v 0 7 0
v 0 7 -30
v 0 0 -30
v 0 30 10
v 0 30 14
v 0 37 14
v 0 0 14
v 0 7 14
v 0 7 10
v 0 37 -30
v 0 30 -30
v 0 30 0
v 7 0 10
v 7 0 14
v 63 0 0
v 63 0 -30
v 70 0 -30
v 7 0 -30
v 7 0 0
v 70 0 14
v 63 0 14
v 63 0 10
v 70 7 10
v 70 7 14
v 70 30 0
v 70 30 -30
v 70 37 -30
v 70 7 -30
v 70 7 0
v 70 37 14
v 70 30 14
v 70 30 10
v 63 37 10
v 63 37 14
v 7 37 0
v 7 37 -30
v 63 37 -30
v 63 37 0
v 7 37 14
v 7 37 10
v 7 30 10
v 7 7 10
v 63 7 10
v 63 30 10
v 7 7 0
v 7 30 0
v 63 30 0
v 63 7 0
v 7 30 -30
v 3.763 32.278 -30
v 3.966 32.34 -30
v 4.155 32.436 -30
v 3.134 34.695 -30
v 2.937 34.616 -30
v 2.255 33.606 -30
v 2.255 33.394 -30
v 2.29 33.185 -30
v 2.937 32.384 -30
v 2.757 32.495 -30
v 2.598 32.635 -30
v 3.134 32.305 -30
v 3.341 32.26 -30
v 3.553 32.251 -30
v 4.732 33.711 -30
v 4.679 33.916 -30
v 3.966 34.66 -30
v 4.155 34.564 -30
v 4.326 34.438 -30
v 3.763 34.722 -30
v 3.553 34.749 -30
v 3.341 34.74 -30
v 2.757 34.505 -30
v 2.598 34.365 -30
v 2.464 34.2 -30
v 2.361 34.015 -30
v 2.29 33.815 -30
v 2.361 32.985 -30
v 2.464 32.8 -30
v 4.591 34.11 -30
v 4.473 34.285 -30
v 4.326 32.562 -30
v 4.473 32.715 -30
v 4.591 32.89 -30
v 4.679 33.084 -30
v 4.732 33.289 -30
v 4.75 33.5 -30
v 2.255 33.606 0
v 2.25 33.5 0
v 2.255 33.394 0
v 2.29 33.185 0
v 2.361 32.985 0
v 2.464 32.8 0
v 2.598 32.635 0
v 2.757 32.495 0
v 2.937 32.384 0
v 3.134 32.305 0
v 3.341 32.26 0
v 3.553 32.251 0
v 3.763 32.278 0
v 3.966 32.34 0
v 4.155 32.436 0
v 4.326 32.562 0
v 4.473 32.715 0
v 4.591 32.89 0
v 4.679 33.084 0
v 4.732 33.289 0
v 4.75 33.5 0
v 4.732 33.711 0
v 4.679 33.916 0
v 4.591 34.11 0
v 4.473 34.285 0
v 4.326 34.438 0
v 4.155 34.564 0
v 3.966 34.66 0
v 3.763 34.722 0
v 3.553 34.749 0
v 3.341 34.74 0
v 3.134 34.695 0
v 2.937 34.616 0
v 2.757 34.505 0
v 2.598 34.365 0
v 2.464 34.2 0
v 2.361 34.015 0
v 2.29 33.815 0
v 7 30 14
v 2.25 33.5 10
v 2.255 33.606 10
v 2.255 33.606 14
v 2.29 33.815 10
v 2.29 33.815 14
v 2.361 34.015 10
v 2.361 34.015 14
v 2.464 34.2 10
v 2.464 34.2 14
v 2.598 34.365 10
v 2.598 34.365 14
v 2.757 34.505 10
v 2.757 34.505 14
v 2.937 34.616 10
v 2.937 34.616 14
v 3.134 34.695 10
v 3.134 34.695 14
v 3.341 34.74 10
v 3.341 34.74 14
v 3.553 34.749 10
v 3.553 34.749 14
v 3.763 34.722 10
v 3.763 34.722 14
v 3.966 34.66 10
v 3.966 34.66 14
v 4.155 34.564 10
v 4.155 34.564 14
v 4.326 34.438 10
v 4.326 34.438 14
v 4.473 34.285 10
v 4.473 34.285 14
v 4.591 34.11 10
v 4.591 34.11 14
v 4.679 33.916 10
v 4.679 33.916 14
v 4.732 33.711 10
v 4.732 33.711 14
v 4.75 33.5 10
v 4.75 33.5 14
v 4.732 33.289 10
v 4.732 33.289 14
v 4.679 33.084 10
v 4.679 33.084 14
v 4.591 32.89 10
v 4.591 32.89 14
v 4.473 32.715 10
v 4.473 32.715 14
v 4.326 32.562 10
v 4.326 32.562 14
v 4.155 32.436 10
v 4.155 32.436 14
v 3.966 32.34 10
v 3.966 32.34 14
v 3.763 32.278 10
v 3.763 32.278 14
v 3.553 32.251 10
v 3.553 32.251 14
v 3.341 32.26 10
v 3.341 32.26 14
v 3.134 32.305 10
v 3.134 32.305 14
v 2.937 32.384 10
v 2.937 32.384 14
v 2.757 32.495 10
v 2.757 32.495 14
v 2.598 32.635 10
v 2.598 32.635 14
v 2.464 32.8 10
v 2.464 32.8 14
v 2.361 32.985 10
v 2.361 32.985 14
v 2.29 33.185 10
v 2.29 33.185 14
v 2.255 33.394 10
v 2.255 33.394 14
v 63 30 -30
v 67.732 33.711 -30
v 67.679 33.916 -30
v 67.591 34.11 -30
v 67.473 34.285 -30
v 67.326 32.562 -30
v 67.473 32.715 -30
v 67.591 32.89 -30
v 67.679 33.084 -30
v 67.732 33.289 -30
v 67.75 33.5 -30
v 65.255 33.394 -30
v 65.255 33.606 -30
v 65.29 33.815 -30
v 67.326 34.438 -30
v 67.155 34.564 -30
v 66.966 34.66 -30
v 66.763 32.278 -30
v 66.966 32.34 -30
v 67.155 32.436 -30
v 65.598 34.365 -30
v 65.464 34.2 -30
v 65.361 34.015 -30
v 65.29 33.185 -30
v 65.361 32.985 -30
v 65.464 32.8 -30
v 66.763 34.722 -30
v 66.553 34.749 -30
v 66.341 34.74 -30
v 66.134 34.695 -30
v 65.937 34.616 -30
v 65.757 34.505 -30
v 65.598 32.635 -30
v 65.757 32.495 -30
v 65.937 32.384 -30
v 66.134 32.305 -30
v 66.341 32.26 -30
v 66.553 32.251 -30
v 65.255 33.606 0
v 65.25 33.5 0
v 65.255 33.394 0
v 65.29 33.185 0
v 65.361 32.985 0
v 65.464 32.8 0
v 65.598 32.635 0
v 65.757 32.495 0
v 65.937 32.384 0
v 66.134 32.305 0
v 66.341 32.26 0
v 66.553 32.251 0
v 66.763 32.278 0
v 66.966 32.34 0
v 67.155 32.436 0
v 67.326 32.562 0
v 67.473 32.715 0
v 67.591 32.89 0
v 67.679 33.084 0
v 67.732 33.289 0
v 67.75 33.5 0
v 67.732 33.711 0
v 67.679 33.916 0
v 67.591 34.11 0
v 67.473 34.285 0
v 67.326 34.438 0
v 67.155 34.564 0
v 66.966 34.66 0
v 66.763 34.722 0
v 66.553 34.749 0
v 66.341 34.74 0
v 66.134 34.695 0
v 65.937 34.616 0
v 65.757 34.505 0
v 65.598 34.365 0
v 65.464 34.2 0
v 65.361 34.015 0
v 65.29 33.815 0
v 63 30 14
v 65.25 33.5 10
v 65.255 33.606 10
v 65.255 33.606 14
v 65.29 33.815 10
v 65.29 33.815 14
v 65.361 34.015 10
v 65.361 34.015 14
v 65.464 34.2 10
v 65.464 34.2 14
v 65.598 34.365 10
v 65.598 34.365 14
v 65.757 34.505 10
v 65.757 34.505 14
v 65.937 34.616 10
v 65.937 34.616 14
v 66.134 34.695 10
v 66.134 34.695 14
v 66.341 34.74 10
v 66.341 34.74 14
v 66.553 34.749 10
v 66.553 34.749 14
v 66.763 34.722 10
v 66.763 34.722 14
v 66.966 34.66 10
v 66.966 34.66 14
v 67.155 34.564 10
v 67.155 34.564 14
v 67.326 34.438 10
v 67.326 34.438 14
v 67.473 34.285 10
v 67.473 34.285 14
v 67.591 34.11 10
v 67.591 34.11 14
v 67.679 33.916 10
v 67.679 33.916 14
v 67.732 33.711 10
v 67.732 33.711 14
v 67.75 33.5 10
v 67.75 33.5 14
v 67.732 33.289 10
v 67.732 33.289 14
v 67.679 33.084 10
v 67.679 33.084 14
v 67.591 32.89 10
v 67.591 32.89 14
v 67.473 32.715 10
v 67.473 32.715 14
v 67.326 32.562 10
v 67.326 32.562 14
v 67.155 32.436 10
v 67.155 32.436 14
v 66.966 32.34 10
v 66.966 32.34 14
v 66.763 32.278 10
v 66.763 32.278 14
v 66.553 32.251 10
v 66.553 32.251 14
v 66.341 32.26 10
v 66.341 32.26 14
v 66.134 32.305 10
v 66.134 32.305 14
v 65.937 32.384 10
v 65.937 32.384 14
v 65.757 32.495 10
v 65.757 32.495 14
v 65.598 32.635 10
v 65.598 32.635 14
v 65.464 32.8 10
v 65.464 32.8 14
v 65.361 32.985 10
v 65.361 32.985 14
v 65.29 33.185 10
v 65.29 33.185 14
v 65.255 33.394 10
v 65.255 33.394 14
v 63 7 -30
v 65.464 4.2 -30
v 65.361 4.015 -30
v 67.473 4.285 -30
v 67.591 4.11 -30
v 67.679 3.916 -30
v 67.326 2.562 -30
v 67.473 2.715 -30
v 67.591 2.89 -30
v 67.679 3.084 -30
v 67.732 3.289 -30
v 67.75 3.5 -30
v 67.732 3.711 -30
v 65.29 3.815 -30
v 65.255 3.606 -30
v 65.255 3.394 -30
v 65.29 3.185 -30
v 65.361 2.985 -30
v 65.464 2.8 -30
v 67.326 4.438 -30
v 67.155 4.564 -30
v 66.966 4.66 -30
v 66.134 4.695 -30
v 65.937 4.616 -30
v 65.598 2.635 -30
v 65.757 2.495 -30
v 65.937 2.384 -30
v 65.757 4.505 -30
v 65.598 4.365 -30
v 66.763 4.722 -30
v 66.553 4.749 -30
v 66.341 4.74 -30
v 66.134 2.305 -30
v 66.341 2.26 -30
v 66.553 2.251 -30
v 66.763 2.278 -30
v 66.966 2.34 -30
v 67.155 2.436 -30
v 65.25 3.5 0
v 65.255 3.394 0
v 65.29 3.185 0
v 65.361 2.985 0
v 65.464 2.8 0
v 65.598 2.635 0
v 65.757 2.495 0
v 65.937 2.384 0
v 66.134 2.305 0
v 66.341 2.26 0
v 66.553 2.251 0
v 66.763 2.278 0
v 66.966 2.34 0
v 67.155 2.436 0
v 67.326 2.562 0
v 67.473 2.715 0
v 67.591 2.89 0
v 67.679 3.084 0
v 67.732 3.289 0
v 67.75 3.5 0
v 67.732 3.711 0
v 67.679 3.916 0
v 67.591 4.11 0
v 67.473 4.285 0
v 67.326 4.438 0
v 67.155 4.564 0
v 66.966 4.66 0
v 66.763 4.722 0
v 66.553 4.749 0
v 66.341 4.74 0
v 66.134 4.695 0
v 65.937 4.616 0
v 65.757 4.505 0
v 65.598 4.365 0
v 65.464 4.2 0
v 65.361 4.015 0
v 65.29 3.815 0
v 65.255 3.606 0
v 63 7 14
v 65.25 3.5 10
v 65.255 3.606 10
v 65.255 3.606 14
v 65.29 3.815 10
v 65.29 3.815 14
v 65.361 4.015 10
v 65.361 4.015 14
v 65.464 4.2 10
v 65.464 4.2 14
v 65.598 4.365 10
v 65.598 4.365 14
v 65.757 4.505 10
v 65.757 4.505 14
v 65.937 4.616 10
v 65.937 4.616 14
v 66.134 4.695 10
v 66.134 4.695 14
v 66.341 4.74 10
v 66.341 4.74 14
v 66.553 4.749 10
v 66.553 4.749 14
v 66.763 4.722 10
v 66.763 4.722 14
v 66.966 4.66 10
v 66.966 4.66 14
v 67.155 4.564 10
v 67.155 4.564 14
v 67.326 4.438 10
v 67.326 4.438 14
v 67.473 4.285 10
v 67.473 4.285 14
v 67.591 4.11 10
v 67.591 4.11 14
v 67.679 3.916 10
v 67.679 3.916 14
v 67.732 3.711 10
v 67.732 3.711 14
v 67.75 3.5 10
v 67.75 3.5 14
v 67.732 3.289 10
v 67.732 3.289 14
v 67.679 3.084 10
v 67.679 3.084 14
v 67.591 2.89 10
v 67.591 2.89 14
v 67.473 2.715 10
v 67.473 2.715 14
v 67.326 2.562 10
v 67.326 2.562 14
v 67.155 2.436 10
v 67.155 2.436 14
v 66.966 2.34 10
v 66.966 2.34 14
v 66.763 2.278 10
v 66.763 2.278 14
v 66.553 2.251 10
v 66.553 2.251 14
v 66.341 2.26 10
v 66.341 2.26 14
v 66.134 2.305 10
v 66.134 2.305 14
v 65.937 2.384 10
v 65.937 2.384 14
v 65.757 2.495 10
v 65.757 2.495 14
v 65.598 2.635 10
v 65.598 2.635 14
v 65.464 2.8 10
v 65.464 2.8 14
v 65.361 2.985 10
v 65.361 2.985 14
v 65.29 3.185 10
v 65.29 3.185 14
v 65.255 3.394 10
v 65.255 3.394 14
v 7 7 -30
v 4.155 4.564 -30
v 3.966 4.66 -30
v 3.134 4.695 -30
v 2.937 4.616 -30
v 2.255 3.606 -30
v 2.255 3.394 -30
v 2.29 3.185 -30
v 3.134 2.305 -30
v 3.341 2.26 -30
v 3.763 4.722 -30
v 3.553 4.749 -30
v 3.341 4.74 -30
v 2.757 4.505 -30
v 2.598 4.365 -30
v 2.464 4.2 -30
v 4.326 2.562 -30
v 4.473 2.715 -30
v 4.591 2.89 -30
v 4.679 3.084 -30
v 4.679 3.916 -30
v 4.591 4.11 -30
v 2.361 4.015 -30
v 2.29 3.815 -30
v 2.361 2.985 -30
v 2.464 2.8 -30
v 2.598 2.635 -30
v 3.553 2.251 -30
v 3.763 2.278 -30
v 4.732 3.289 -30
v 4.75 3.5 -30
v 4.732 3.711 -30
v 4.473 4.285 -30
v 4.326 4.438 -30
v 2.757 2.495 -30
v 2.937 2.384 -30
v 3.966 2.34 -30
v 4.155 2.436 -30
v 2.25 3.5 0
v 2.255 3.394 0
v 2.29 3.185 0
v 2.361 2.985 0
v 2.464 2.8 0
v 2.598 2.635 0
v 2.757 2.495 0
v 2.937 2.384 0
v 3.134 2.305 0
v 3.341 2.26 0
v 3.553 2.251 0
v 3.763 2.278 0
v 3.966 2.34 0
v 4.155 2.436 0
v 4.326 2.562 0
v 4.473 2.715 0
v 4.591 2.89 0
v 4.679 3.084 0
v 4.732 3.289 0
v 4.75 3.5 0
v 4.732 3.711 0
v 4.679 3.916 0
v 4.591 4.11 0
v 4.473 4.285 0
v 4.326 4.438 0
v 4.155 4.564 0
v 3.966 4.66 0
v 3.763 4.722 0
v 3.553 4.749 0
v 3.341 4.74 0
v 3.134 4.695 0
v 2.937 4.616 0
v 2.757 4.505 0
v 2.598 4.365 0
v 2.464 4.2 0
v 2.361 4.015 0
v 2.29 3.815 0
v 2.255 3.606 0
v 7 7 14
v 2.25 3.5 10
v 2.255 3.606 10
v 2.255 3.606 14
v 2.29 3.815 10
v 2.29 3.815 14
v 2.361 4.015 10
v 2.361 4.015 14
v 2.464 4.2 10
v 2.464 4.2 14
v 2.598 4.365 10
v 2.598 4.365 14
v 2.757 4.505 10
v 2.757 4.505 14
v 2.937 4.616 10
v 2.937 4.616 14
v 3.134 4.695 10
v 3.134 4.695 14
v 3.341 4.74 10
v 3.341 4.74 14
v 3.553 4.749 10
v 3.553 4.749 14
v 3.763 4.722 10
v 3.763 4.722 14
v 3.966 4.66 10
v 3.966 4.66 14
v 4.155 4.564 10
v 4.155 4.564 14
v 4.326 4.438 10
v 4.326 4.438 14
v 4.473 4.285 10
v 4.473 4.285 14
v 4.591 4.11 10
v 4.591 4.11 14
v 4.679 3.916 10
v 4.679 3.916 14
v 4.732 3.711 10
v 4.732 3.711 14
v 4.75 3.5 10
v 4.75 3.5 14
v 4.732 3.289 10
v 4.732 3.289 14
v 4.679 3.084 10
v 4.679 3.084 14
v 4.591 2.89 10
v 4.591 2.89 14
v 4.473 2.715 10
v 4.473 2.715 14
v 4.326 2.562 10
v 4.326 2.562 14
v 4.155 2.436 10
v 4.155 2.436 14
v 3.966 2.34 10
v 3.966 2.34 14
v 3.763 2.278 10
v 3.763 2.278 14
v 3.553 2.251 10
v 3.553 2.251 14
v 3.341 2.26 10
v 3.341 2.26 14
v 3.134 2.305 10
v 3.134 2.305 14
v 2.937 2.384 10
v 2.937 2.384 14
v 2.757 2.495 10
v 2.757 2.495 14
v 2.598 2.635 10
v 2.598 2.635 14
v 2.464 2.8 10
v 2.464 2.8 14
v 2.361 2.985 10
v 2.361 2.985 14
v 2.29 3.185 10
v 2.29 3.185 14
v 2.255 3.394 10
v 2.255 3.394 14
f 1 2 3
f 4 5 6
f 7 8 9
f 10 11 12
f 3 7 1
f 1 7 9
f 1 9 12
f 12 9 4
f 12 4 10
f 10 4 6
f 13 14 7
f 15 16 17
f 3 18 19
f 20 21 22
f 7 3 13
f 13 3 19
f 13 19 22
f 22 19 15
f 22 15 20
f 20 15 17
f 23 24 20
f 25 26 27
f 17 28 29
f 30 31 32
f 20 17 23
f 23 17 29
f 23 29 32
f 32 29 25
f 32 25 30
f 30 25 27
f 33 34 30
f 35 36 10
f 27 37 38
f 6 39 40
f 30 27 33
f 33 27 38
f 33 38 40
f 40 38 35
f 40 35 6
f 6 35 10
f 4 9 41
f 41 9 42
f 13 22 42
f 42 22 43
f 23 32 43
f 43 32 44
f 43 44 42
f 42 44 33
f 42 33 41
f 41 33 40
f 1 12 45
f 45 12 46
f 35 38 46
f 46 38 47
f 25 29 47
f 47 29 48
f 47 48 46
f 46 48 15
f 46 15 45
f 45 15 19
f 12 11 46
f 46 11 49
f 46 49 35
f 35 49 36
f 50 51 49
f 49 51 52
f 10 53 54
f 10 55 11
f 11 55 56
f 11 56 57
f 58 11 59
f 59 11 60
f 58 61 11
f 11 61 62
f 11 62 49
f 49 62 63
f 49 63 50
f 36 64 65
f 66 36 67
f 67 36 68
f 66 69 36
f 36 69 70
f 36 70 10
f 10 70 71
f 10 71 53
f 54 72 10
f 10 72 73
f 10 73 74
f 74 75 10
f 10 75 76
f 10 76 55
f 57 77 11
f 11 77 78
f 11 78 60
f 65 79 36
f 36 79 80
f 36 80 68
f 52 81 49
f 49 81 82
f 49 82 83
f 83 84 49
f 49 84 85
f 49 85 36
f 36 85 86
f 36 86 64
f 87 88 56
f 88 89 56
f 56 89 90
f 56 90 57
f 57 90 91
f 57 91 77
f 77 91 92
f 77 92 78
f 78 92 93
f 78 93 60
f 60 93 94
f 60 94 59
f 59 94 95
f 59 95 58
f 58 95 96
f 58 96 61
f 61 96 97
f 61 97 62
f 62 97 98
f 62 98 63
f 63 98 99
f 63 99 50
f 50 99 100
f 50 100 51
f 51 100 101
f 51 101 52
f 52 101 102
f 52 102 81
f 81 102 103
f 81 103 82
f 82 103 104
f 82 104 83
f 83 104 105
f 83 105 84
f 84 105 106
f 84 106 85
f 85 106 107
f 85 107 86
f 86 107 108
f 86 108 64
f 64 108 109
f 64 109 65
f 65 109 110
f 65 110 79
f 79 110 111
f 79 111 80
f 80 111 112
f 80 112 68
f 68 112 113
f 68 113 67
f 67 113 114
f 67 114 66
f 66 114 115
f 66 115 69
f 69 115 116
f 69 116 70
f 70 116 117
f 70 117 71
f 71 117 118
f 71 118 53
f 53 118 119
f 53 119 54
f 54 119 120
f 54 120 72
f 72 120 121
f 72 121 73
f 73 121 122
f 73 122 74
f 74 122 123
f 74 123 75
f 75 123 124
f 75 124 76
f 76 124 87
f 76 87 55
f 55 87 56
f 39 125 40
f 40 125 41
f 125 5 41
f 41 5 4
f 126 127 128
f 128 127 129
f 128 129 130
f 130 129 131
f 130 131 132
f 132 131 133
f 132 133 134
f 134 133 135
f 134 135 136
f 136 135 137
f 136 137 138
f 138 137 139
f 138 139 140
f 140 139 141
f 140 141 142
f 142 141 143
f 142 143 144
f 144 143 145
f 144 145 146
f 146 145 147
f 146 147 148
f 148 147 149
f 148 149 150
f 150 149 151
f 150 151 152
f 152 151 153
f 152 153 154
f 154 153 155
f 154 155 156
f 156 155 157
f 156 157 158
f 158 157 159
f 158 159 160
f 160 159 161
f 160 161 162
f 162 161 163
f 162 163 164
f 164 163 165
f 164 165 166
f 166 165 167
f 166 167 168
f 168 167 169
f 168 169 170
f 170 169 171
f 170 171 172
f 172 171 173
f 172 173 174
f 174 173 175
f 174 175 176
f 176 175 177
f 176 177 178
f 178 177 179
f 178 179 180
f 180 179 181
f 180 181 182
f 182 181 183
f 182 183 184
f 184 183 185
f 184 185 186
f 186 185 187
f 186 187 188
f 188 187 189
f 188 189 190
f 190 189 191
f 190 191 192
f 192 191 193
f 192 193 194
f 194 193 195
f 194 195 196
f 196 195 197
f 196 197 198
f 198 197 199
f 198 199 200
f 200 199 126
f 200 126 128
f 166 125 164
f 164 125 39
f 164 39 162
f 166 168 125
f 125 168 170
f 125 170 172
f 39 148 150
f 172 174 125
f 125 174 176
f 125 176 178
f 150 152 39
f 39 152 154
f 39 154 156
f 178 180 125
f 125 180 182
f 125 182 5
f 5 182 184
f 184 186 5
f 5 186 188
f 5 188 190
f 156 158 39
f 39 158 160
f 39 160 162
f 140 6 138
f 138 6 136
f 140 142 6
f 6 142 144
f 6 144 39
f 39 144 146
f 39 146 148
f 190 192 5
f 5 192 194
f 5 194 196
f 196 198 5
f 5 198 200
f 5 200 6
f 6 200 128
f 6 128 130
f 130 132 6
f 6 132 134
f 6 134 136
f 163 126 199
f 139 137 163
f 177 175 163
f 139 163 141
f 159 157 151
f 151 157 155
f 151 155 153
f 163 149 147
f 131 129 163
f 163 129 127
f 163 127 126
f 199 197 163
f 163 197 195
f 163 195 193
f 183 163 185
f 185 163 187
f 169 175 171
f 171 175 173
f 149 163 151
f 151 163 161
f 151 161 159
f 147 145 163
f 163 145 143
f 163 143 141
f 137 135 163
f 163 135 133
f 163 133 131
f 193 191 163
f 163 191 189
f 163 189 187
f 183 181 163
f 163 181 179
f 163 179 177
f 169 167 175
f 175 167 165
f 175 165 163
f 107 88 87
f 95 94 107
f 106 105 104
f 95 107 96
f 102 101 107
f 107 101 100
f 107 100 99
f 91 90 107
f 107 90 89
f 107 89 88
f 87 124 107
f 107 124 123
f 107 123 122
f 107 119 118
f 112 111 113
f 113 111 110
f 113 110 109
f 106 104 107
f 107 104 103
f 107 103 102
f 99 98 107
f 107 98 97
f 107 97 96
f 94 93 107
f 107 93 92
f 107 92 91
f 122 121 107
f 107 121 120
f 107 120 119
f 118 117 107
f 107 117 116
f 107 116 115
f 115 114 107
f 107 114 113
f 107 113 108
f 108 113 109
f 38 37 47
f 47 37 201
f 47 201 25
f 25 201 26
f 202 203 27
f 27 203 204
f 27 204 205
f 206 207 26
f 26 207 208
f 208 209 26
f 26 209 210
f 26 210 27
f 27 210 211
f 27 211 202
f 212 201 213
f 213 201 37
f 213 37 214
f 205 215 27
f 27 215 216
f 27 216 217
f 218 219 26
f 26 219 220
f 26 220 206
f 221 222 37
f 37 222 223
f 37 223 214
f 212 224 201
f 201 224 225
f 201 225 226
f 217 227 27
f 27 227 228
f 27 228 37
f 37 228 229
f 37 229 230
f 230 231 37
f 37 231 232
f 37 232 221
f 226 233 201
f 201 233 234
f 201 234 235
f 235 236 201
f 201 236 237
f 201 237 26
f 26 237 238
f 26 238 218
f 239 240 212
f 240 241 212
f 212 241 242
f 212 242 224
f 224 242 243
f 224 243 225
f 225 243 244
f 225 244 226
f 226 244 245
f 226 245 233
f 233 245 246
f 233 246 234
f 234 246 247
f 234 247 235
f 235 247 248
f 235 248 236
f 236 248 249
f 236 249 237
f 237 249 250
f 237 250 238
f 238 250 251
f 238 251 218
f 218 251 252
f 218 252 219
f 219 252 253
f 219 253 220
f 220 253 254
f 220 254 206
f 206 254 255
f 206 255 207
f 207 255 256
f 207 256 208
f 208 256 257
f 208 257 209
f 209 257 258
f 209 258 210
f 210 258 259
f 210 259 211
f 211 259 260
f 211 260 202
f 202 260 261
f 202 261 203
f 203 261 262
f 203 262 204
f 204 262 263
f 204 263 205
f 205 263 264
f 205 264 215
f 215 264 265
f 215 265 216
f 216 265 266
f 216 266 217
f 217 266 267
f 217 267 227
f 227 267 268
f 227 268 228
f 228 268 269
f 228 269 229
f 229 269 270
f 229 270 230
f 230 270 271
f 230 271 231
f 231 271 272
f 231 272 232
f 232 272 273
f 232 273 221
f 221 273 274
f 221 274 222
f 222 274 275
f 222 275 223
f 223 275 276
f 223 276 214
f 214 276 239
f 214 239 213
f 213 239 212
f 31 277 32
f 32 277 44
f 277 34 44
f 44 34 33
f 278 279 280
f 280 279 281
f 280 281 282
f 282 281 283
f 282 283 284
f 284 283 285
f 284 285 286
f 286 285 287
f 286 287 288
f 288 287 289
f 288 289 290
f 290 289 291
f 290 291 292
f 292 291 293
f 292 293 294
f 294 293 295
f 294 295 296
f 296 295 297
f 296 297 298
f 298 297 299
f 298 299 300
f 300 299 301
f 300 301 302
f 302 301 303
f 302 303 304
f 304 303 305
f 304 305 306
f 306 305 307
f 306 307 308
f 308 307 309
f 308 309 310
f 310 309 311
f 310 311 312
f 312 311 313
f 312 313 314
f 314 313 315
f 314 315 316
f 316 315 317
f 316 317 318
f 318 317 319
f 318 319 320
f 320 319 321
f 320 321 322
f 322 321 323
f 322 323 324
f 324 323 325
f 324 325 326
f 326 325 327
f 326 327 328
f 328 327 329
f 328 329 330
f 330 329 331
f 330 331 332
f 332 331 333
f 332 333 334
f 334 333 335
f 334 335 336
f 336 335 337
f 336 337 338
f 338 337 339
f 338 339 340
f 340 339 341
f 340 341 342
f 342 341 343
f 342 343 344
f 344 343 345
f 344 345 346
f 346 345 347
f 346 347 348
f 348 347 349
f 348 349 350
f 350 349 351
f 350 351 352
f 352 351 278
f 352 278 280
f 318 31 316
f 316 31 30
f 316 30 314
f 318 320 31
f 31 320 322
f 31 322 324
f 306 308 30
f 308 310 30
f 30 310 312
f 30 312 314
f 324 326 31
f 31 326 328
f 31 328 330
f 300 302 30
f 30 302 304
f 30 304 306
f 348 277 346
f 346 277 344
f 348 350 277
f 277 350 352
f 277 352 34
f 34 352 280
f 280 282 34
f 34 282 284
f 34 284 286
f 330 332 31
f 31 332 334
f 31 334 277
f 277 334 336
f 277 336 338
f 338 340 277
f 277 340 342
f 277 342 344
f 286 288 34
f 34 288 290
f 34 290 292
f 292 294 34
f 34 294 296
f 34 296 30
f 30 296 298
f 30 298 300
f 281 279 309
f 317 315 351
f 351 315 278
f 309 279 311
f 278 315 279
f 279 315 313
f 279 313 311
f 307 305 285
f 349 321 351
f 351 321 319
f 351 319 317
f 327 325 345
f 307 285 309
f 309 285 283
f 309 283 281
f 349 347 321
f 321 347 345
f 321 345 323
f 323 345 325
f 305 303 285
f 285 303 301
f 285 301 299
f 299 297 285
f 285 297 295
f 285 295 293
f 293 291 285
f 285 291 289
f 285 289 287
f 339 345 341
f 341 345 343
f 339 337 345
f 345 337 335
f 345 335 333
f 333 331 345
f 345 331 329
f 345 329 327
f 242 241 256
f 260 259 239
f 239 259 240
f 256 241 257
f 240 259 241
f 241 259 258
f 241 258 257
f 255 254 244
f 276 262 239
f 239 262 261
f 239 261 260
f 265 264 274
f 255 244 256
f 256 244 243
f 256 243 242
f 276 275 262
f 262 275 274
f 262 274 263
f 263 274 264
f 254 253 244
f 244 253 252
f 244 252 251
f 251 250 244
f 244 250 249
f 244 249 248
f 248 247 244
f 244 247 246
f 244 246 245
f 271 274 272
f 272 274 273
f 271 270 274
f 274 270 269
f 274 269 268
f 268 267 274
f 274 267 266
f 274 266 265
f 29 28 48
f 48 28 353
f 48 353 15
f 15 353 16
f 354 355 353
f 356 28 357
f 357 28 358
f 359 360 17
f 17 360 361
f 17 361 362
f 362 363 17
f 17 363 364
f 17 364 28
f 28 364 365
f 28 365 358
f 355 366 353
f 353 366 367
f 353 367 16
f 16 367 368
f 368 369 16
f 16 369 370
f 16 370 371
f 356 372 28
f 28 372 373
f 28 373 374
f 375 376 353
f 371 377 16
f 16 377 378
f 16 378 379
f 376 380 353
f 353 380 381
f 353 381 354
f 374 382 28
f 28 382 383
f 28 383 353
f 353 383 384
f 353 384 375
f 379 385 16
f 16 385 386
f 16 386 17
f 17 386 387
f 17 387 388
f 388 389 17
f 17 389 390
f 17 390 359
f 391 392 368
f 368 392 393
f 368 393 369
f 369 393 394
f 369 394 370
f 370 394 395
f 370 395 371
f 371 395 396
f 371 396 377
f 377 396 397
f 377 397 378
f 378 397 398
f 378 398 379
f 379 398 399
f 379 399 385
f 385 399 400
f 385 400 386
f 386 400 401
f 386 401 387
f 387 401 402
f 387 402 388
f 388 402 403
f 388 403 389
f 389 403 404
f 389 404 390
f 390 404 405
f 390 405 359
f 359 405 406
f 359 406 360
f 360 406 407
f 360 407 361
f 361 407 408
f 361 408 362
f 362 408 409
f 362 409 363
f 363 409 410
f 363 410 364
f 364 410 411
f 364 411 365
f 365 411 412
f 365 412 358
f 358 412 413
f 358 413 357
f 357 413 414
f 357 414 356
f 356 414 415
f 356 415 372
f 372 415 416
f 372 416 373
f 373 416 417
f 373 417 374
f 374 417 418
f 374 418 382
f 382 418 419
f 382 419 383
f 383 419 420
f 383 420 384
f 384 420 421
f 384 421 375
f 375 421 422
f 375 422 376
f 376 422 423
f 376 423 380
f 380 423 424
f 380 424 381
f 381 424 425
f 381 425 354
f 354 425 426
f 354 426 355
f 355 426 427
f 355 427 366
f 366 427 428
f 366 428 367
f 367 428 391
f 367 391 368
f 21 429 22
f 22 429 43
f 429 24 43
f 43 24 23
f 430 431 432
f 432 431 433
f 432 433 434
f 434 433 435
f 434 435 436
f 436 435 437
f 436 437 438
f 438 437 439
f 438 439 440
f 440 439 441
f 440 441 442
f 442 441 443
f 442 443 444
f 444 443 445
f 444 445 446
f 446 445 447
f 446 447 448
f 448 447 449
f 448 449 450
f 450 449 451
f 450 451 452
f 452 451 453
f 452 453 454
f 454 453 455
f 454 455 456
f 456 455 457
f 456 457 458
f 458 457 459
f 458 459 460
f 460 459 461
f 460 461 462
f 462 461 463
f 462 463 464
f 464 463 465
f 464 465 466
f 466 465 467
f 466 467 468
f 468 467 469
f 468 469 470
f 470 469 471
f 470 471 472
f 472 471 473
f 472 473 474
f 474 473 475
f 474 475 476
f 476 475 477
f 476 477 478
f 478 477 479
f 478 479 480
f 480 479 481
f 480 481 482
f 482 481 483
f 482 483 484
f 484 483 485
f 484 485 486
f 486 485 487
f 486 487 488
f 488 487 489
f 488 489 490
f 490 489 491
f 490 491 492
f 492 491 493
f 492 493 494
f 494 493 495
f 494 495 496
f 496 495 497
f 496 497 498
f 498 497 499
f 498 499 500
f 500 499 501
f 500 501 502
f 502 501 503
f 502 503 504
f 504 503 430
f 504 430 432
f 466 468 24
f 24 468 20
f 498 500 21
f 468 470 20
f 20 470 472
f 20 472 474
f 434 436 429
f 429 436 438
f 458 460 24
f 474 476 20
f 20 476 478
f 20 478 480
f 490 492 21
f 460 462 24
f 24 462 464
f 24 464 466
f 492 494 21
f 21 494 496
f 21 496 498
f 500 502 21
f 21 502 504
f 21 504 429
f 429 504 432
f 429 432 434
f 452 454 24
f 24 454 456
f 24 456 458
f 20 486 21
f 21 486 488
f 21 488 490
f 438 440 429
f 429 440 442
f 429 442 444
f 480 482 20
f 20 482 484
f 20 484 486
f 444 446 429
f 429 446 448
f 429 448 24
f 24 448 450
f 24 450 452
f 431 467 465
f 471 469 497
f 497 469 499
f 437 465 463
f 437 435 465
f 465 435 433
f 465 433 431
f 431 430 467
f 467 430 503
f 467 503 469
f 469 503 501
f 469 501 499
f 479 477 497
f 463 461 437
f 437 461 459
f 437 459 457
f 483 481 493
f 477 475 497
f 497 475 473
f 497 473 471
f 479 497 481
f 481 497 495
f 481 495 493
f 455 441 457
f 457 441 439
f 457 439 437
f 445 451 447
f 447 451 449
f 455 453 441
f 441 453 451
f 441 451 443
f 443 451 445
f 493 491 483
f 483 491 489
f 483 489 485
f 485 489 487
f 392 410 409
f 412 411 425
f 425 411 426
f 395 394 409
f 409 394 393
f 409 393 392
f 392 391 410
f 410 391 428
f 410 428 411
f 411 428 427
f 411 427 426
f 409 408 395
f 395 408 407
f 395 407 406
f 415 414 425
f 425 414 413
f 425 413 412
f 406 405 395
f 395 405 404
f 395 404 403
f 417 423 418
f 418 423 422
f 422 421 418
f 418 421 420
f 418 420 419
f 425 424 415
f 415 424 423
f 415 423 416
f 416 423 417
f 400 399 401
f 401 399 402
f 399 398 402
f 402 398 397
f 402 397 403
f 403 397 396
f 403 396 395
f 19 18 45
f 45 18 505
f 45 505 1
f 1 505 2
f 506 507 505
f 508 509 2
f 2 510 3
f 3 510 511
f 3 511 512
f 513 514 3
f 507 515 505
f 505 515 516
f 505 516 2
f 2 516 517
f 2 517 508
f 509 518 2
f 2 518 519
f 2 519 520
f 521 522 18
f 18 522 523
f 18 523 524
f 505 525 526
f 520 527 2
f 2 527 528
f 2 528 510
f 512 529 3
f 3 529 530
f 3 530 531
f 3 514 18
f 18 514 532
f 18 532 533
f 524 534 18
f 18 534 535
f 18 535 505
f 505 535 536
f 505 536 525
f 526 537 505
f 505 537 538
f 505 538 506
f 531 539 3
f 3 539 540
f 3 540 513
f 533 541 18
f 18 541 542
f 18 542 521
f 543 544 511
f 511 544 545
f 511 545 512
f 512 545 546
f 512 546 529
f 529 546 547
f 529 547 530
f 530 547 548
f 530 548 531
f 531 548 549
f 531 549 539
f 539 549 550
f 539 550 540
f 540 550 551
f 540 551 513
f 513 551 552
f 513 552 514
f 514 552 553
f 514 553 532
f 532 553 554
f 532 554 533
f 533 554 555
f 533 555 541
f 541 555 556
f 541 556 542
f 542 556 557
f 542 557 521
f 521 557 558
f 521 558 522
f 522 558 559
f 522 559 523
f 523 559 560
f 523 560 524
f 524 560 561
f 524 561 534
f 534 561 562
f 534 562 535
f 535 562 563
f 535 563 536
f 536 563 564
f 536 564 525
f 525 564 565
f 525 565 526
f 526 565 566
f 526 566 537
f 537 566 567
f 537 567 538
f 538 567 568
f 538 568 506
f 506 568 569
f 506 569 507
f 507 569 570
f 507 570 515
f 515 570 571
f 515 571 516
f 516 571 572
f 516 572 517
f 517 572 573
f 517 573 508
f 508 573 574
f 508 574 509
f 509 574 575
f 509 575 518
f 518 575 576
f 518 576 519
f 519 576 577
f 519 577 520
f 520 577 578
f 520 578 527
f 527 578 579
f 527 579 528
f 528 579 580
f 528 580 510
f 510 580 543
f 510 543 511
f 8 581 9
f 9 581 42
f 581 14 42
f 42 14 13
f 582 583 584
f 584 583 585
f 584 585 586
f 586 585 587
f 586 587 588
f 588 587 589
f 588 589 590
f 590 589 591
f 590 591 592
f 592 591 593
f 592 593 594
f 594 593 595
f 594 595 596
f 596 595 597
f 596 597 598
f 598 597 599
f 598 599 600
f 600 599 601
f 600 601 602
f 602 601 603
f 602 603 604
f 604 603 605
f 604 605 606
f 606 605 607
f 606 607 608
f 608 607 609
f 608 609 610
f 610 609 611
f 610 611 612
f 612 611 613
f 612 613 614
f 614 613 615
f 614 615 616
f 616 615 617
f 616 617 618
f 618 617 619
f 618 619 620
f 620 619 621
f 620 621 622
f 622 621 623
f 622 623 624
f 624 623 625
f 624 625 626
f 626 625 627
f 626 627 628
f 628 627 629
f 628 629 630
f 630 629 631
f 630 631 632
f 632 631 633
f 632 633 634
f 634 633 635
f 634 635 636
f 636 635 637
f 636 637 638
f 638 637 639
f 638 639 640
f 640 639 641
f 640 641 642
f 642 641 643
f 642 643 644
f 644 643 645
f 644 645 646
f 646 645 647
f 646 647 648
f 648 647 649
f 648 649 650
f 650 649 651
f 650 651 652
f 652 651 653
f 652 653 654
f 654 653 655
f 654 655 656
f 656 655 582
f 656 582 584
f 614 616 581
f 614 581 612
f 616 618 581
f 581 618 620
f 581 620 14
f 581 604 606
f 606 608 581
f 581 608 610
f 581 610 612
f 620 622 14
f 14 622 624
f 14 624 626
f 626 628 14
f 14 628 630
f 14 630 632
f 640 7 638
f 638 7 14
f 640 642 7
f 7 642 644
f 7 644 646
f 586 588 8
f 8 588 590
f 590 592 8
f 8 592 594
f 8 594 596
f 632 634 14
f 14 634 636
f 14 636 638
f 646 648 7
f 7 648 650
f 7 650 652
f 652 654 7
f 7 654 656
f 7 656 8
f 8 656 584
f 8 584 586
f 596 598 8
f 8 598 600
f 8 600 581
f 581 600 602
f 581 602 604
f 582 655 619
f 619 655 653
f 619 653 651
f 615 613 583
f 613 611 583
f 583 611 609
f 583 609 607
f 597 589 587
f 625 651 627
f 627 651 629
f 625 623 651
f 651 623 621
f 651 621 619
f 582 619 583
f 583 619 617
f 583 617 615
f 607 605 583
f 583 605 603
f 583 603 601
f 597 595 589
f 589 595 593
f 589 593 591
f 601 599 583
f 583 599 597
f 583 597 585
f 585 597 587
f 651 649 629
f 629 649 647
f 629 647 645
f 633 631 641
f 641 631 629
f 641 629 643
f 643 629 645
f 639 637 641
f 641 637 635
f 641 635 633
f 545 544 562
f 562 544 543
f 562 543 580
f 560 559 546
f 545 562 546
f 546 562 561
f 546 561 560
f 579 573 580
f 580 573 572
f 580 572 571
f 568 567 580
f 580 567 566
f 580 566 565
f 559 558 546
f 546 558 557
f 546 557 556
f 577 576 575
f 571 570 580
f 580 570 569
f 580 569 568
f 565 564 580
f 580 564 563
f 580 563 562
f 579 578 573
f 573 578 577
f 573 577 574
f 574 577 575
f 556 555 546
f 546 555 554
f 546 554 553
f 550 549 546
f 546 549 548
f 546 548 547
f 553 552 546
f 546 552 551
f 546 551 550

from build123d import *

# Parameters (mm, degrees)
SKETCH1_W                = 70
SKETCH1_H                = 37
BOSS_EXTRUDE1_DEPTH      = 10
BOSS_EXTRUDE4_DEPTH      = 14
BOSS_EXTRUDE4_DEPTH_BACK = 30
SKETCH2_W                = 7
SKETCH2_H                = 7
SKETCH2_R                = 1.25


with BuildPart() as part:
    # Sketch1 → Boss-Extrude1 (new body)
    with BuildSketch(Plane.XY):
        with Locations((35, 18.5)):
            Rectangle(SKETCH1_W, SKETCH1_H)
    extrude(amount=BOSS_EXTRUDE1_DEPTH)

    # Sketch2 → Boss-Extrude4 (add, two sides: drawn at the far end of the back side and taken through both)
    # profile 1 of 4: a face of its own
    with BuildSketch(Plane.XY.offset(-BOSS_EXTRUDE4_DEPTH_BACK)):
        with Locations((3.5, 33.5)):
            Rectangle(SKETCH2_W, SKETCH2_H)
        with Locations((3.5, 33.5)):
            Circle(SKETCH2_R, mode=Mode.SUBTRACT)
    # profile 2 of 4: a face of its own
    with BuildSketch(Plane.XY.offset(-BOSS_EXTRUDE4_DEPTH_BACK)):
        with Locations((66.5, 33.5)):
            Rectangle(SKETCH2_W, SKETCH2_H)
        with Locations((66.5, 33.5)):
            Circle(SKETCH2_R, mode=Mode.SUBTRACT)
    # profile 3 of 4: a face of its own
    with BuildSketch(Plane.XY.offset(-BOSS_EXTRUDE4_DEPTH_BACK)):
        with Locations((66.5, 3.5)):
            Rectangle(SKETCH2_W, SKETCH2_H)
        with Locations((66.5, 3.5)):
            Circle(SKETCH2_R, mode=Mode.SUBTRACT)
    # profile 4 of 4: a face of its own
    with BuildSketch(Plane.XY.offset(-BOSS_EXTRUDE4_DEPTH_BACK)):
        with Locations((3.5, 3.5)):
            Rectangle(SKETCH2_W, SKETCH2_H)
        with Locations((3.5, 3.5)):
            Circle(SKETCH2_R, mode=Mode.SUBTRACT)
    extrude(amount=BOSS_EXTRUDE4_DEPTH + BOSS_EXTRUDE4_DEPTH_BACK)


solid = part.part
